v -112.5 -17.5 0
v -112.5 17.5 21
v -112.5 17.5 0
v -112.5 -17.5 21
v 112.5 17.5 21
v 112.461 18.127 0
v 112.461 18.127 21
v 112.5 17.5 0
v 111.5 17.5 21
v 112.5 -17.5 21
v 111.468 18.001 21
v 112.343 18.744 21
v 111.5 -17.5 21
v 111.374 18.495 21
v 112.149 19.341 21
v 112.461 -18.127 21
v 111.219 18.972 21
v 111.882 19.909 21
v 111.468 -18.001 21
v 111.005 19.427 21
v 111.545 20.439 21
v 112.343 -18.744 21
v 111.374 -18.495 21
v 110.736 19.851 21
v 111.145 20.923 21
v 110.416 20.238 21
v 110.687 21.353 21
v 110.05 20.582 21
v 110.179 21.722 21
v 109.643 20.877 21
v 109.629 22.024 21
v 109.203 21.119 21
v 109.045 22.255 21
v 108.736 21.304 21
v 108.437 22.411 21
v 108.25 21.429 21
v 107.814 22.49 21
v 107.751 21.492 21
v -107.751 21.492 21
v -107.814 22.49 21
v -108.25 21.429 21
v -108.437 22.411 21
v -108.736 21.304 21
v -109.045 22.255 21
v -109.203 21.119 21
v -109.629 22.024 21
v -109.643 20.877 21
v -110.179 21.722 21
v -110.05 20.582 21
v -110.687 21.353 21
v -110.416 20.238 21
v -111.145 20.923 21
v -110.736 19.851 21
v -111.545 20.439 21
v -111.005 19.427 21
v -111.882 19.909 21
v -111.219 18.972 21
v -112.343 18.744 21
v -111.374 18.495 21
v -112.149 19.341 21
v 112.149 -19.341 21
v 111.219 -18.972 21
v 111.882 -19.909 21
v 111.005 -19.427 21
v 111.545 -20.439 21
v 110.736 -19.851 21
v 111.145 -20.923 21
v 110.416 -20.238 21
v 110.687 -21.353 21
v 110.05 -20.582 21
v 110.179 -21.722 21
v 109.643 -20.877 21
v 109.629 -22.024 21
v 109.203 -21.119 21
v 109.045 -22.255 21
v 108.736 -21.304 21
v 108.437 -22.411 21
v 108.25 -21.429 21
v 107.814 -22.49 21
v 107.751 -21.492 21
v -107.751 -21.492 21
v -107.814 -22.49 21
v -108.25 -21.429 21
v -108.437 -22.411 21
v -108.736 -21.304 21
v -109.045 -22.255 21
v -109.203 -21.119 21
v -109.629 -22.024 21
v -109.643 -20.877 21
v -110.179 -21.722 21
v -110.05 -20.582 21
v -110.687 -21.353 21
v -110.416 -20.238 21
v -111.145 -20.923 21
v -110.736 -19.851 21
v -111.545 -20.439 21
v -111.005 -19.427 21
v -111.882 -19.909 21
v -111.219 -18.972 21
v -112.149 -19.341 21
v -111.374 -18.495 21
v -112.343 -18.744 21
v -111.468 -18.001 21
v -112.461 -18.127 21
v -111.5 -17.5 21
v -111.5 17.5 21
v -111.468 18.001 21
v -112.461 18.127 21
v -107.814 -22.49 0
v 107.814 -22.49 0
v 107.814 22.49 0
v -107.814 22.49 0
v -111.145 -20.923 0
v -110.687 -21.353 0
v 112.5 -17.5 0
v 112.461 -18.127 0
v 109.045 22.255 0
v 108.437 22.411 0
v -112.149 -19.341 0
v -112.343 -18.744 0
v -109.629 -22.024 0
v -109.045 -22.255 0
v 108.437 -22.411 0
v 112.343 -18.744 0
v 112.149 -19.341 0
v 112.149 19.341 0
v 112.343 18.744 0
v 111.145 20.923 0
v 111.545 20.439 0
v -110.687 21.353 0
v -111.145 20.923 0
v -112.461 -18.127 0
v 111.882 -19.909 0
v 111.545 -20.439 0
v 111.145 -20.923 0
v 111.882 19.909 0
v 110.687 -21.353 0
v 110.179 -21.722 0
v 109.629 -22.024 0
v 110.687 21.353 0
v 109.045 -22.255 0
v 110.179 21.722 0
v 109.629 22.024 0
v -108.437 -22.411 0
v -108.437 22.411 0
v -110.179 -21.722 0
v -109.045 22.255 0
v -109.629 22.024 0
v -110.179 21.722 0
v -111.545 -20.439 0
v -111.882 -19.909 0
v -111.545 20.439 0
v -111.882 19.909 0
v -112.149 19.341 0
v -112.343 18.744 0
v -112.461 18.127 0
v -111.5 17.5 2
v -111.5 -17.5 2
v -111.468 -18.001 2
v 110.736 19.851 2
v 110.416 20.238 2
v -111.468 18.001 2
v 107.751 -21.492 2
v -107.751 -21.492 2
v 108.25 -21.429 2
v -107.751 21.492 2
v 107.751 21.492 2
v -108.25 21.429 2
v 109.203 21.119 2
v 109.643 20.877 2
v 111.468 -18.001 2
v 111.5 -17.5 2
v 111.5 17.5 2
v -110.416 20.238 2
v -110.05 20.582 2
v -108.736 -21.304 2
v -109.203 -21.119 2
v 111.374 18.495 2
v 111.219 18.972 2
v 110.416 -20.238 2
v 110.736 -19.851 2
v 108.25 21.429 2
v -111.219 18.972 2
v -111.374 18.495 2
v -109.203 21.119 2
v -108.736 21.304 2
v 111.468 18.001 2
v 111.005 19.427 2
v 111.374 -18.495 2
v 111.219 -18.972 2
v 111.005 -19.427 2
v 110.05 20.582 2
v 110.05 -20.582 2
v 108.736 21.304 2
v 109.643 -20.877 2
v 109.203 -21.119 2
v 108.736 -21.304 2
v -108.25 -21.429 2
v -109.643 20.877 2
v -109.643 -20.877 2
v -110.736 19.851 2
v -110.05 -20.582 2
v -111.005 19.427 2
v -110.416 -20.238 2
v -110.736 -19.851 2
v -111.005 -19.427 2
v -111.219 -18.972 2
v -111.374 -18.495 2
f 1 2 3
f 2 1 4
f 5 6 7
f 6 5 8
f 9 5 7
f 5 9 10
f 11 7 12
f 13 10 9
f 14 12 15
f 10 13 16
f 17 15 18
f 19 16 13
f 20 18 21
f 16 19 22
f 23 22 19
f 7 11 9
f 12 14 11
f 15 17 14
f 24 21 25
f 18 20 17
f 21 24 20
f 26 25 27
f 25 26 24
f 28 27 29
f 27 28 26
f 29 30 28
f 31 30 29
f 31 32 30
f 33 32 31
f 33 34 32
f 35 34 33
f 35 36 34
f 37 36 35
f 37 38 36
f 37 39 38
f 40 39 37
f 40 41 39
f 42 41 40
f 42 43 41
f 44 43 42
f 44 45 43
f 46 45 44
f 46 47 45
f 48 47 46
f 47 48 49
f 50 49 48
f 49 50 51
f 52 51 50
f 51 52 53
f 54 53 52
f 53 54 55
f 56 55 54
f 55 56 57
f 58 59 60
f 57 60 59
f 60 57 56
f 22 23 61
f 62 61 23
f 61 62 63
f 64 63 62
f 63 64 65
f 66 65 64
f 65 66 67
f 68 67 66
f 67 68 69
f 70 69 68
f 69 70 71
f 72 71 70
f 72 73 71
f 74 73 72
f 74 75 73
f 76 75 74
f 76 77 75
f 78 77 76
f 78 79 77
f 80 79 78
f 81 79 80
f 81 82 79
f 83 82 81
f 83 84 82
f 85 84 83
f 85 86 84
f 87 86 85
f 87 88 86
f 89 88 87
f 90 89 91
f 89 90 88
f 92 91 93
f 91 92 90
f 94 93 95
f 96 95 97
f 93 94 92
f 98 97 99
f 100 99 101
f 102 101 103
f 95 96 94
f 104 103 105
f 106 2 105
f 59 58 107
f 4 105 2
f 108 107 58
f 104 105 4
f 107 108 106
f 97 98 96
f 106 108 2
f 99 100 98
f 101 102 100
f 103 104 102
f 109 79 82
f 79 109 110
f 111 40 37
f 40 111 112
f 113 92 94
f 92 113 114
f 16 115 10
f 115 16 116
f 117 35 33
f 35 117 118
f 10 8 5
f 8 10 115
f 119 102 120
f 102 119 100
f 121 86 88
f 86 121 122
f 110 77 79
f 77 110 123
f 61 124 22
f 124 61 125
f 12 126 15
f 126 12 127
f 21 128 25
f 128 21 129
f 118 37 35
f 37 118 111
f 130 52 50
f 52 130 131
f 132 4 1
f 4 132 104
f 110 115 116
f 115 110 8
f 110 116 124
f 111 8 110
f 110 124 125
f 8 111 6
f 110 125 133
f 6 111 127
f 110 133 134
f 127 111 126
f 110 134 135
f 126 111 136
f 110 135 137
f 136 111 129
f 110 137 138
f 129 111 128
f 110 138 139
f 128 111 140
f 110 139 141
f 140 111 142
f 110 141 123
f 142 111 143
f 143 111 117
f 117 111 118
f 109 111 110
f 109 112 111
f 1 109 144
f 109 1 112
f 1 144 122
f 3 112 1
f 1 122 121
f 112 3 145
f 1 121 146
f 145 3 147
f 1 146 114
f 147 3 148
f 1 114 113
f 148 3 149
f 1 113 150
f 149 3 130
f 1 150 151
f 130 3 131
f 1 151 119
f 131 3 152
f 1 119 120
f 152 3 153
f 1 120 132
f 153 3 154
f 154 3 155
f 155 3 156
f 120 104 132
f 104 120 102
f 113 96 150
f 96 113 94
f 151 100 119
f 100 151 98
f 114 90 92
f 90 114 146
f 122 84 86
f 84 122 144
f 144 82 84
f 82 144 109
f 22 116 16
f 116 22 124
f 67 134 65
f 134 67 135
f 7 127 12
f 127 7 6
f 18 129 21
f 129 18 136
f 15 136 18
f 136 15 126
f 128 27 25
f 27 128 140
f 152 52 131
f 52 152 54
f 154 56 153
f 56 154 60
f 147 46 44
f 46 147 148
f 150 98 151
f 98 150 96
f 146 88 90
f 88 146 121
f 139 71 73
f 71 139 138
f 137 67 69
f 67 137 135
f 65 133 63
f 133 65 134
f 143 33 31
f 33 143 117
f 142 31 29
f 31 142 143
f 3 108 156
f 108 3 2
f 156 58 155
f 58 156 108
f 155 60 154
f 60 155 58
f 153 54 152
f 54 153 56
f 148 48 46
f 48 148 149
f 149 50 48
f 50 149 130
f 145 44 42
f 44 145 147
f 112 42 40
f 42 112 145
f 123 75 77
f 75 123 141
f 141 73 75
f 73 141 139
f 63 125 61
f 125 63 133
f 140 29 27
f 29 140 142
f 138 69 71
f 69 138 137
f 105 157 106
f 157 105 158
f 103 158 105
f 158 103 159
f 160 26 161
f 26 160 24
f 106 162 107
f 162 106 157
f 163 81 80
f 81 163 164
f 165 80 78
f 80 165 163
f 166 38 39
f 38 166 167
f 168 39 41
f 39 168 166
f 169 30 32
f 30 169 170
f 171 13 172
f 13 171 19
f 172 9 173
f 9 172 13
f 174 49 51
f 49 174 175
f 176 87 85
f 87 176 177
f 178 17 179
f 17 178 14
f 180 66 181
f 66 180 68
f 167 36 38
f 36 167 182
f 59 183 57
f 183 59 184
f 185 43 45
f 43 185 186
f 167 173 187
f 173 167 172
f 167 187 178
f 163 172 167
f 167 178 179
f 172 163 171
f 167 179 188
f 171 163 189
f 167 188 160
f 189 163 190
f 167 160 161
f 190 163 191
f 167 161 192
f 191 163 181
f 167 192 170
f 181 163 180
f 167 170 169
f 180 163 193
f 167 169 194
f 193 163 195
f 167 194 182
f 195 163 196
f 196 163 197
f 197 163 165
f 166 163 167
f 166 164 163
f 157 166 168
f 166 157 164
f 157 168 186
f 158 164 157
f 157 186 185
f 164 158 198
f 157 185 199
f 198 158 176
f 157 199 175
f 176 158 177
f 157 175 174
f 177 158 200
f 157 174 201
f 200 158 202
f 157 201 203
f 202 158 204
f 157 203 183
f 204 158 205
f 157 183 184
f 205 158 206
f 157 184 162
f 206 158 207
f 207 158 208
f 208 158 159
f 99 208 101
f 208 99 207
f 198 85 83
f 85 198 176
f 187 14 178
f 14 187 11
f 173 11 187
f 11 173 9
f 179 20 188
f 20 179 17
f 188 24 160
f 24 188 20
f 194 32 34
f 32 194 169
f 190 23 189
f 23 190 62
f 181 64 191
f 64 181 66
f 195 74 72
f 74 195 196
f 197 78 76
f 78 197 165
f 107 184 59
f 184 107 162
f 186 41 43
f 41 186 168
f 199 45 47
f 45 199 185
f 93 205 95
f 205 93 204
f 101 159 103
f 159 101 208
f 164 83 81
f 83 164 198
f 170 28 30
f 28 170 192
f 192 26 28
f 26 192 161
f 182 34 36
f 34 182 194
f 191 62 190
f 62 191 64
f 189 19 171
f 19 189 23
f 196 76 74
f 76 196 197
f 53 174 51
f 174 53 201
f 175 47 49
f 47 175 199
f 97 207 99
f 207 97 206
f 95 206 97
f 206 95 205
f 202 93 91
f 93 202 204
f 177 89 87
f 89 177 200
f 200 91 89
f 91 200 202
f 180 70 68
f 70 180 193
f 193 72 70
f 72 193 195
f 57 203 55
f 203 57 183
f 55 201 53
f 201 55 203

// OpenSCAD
$fn = 50;


difference() {
	union() {
		hull() {
			translate(v = [-107.5000000000, 17.5000000000, 0]) {
				cylinder(h = 21, r = 5);
			}
			translate(v = [107.5000000000, 17.5000000000, 0]) {
				cylinder(h = 21, r = 5);
			}
			translate(v = [-107.5000000000, -17.5000000000, 0]) {
				cylinder(h = 21, r = 5);
			}
			translate(v = [107.5000000000, -17.5000000000, 0]) {
				cylinder(h = 21, r = 5);
			}
		}
	}
	union() {
		translate(v = [0, 0, 2]) {
			hull() {
				translate(v = [-107.5000000000, 17.5000000000, 0]) {
					cylinder(h = 19, r = 4);
				}
				translate(v = [107.5000000000, 17.5000000000, 0]) {
					cylinder(h = 19, r = 4);
				}
				translate(v = [-107.5000000000, -17.5000000000, 0]) {
					cylinder(h = 19, r = 4);
				}
				translate(v = [107.5000000000, -17.5000000000, 0]) {
					cylinder(h = 19, r = 4);
				}
			}
		}
	}
}
